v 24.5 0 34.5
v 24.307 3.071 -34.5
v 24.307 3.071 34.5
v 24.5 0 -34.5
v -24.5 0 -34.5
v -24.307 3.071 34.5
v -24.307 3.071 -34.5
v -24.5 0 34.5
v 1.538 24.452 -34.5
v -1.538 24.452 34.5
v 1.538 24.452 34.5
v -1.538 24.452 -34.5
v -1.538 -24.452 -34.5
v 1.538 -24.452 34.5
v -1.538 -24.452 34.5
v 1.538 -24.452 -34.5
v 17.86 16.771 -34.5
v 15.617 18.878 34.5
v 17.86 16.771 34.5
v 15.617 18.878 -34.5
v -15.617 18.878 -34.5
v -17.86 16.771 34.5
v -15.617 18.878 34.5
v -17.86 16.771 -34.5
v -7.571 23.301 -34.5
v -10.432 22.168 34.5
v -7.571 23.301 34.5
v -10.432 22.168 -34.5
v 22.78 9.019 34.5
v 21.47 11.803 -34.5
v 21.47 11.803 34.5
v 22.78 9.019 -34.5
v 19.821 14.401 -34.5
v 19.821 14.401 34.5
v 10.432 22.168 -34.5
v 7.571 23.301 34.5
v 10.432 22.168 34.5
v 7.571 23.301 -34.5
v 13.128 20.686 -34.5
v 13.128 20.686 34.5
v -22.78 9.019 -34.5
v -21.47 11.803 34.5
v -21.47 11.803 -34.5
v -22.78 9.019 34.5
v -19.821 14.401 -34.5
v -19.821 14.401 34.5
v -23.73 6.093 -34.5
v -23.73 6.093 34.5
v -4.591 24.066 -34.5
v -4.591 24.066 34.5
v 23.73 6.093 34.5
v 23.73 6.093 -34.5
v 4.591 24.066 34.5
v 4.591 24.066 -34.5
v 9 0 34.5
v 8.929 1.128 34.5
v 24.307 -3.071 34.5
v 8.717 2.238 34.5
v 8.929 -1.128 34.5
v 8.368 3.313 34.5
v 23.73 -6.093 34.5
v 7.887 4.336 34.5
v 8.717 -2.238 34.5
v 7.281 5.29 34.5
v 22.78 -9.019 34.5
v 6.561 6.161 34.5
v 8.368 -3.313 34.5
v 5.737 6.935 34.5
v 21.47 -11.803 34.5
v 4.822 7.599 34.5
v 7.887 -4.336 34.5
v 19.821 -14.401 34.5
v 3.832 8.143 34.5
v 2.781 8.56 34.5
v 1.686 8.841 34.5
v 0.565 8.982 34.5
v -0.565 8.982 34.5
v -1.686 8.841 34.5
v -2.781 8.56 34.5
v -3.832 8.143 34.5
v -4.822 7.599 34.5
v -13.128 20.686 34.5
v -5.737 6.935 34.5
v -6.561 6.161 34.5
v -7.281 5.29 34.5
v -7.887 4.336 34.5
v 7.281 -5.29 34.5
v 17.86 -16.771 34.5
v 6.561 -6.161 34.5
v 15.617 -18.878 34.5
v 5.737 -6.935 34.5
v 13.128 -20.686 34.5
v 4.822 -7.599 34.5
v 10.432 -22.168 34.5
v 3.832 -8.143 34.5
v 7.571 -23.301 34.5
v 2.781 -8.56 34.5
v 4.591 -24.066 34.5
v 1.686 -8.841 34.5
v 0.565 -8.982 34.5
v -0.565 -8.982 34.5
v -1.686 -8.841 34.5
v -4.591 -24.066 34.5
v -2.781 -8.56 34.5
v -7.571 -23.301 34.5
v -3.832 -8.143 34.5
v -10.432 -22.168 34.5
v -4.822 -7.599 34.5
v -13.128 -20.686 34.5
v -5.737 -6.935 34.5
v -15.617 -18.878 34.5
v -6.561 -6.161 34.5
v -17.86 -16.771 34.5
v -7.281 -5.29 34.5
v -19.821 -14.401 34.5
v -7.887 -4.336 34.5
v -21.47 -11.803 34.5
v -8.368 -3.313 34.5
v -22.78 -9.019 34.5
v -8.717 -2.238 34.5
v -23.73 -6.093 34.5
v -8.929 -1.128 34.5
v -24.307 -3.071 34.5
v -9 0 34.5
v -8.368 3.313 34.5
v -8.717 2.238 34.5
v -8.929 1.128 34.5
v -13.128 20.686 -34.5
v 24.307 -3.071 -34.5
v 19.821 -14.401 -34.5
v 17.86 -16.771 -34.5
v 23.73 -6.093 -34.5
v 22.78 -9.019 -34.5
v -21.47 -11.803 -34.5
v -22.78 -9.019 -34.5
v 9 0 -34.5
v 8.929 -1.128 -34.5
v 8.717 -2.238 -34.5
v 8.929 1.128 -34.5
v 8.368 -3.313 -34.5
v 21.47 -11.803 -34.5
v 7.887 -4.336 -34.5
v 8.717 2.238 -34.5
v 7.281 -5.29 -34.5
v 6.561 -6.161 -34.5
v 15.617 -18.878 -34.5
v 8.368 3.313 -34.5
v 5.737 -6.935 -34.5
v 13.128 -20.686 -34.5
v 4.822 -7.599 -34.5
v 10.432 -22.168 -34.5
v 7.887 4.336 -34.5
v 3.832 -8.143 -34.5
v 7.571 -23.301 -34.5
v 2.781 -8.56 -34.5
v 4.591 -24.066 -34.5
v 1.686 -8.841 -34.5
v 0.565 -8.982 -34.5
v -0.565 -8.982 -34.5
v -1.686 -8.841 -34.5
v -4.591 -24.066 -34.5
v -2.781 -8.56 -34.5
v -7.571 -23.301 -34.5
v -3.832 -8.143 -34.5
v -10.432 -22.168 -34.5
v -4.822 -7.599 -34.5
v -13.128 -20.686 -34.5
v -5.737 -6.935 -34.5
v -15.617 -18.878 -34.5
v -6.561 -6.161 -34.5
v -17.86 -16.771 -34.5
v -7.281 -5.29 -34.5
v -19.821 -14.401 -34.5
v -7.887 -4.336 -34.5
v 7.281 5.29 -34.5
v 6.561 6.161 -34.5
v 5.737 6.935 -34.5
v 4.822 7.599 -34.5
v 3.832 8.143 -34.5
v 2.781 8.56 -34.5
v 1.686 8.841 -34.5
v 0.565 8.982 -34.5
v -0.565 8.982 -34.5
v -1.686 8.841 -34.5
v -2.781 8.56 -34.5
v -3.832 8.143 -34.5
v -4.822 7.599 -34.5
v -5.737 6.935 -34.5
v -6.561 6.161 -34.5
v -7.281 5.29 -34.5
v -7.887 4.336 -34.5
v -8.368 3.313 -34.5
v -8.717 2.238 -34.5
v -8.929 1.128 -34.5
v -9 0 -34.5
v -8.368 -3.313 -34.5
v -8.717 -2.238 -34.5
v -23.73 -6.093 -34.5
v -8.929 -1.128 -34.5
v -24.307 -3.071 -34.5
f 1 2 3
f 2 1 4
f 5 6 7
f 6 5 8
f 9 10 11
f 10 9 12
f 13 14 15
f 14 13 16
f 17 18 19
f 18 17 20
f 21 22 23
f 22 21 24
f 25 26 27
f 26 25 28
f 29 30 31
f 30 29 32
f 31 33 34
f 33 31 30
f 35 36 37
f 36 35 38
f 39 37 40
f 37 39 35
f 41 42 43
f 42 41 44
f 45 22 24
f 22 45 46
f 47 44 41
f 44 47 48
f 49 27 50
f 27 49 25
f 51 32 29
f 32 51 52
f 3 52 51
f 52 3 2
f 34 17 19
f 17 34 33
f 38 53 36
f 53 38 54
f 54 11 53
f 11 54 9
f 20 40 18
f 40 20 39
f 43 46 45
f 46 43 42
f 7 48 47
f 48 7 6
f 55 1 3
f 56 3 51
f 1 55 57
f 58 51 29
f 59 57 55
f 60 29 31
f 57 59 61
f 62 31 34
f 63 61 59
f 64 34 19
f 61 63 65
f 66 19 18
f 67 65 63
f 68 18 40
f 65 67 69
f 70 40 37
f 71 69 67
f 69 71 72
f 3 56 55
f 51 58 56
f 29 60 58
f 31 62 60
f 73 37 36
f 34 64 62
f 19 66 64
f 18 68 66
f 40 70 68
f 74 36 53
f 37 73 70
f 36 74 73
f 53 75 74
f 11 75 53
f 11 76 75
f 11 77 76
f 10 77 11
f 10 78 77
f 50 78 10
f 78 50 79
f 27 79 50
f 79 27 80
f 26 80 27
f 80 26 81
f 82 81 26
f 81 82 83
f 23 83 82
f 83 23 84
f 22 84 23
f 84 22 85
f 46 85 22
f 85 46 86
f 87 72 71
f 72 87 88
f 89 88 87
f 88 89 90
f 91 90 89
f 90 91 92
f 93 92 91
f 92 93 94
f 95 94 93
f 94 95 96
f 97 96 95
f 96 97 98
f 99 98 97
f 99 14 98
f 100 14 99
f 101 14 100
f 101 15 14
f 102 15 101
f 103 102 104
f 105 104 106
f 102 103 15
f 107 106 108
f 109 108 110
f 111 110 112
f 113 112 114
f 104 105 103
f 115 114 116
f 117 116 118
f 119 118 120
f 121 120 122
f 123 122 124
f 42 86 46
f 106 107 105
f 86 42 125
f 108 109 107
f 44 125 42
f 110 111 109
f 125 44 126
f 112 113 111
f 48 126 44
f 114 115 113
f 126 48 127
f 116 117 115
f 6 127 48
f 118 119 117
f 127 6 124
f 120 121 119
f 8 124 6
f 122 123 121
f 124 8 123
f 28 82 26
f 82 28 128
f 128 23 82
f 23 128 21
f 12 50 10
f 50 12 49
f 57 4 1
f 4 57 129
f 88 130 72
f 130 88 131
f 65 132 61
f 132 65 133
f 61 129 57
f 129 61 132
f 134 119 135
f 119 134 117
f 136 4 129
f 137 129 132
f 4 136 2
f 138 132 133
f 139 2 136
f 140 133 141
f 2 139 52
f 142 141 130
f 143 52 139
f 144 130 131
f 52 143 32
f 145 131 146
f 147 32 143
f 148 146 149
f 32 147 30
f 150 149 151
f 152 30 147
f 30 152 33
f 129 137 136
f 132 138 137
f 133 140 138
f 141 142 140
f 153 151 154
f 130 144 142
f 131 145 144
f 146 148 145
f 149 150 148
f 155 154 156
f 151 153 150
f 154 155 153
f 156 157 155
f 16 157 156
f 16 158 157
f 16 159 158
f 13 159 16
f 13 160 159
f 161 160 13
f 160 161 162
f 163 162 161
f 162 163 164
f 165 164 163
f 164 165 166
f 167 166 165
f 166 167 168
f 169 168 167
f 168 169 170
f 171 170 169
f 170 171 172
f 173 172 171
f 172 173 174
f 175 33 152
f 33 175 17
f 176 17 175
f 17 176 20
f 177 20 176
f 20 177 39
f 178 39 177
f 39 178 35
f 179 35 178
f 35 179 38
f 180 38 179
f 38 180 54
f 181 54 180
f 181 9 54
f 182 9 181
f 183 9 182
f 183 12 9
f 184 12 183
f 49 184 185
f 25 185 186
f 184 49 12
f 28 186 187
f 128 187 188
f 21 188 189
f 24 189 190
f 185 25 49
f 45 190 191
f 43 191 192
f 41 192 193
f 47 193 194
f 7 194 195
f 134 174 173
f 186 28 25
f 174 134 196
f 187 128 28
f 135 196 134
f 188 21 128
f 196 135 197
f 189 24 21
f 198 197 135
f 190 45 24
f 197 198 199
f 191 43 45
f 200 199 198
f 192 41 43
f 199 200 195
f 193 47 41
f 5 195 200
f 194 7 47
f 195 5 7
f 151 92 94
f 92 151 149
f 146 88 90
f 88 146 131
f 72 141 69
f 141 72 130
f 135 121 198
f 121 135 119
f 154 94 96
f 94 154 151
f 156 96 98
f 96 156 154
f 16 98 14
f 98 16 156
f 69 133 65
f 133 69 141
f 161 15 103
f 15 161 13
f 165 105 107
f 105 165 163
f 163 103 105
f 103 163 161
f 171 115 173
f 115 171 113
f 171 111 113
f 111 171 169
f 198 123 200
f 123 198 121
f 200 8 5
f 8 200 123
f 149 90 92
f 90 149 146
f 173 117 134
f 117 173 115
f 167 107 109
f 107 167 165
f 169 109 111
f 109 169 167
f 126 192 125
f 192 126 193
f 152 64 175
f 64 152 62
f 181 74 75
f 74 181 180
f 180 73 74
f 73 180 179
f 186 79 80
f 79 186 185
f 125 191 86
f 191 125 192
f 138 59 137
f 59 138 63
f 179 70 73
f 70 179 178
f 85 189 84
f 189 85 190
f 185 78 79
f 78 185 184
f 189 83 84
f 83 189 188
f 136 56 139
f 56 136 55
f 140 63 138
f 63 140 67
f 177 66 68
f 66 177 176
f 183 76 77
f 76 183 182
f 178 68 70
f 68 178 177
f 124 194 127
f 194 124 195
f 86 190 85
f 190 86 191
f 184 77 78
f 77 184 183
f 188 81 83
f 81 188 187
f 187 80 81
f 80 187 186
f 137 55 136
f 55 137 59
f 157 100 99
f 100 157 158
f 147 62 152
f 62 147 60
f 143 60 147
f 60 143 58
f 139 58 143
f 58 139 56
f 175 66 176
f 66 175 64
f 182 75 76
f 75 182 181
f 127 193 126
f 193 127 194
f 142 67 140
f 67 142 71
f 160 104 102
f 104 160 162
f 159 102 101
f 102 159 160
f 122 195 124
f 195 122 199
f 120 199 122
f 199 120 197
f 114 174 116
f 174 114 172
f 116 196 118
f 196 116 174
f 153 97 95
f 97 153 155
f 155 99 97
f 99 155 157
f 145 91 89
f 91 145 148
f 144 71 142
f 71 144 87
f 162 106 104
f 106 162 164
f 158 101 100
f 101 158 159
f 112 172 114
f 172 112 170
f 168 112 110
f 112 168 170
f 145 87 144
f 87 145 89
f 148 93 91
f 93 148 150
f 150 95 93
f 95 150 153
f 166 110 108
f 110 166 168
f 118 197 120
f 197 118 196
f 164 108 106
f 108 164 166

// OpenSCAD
$fn = 50;


difference() {
	union() {
		translate(v = [0, 0, -34.5000000000]) {
			cylinder(h = 69, r = 24.5000000000);
		}
	}
	union() {
		translate(v = [0, 0, -100.0000000000]) {
			cylinder(h = 200, r = 9);
		}
	}
}
